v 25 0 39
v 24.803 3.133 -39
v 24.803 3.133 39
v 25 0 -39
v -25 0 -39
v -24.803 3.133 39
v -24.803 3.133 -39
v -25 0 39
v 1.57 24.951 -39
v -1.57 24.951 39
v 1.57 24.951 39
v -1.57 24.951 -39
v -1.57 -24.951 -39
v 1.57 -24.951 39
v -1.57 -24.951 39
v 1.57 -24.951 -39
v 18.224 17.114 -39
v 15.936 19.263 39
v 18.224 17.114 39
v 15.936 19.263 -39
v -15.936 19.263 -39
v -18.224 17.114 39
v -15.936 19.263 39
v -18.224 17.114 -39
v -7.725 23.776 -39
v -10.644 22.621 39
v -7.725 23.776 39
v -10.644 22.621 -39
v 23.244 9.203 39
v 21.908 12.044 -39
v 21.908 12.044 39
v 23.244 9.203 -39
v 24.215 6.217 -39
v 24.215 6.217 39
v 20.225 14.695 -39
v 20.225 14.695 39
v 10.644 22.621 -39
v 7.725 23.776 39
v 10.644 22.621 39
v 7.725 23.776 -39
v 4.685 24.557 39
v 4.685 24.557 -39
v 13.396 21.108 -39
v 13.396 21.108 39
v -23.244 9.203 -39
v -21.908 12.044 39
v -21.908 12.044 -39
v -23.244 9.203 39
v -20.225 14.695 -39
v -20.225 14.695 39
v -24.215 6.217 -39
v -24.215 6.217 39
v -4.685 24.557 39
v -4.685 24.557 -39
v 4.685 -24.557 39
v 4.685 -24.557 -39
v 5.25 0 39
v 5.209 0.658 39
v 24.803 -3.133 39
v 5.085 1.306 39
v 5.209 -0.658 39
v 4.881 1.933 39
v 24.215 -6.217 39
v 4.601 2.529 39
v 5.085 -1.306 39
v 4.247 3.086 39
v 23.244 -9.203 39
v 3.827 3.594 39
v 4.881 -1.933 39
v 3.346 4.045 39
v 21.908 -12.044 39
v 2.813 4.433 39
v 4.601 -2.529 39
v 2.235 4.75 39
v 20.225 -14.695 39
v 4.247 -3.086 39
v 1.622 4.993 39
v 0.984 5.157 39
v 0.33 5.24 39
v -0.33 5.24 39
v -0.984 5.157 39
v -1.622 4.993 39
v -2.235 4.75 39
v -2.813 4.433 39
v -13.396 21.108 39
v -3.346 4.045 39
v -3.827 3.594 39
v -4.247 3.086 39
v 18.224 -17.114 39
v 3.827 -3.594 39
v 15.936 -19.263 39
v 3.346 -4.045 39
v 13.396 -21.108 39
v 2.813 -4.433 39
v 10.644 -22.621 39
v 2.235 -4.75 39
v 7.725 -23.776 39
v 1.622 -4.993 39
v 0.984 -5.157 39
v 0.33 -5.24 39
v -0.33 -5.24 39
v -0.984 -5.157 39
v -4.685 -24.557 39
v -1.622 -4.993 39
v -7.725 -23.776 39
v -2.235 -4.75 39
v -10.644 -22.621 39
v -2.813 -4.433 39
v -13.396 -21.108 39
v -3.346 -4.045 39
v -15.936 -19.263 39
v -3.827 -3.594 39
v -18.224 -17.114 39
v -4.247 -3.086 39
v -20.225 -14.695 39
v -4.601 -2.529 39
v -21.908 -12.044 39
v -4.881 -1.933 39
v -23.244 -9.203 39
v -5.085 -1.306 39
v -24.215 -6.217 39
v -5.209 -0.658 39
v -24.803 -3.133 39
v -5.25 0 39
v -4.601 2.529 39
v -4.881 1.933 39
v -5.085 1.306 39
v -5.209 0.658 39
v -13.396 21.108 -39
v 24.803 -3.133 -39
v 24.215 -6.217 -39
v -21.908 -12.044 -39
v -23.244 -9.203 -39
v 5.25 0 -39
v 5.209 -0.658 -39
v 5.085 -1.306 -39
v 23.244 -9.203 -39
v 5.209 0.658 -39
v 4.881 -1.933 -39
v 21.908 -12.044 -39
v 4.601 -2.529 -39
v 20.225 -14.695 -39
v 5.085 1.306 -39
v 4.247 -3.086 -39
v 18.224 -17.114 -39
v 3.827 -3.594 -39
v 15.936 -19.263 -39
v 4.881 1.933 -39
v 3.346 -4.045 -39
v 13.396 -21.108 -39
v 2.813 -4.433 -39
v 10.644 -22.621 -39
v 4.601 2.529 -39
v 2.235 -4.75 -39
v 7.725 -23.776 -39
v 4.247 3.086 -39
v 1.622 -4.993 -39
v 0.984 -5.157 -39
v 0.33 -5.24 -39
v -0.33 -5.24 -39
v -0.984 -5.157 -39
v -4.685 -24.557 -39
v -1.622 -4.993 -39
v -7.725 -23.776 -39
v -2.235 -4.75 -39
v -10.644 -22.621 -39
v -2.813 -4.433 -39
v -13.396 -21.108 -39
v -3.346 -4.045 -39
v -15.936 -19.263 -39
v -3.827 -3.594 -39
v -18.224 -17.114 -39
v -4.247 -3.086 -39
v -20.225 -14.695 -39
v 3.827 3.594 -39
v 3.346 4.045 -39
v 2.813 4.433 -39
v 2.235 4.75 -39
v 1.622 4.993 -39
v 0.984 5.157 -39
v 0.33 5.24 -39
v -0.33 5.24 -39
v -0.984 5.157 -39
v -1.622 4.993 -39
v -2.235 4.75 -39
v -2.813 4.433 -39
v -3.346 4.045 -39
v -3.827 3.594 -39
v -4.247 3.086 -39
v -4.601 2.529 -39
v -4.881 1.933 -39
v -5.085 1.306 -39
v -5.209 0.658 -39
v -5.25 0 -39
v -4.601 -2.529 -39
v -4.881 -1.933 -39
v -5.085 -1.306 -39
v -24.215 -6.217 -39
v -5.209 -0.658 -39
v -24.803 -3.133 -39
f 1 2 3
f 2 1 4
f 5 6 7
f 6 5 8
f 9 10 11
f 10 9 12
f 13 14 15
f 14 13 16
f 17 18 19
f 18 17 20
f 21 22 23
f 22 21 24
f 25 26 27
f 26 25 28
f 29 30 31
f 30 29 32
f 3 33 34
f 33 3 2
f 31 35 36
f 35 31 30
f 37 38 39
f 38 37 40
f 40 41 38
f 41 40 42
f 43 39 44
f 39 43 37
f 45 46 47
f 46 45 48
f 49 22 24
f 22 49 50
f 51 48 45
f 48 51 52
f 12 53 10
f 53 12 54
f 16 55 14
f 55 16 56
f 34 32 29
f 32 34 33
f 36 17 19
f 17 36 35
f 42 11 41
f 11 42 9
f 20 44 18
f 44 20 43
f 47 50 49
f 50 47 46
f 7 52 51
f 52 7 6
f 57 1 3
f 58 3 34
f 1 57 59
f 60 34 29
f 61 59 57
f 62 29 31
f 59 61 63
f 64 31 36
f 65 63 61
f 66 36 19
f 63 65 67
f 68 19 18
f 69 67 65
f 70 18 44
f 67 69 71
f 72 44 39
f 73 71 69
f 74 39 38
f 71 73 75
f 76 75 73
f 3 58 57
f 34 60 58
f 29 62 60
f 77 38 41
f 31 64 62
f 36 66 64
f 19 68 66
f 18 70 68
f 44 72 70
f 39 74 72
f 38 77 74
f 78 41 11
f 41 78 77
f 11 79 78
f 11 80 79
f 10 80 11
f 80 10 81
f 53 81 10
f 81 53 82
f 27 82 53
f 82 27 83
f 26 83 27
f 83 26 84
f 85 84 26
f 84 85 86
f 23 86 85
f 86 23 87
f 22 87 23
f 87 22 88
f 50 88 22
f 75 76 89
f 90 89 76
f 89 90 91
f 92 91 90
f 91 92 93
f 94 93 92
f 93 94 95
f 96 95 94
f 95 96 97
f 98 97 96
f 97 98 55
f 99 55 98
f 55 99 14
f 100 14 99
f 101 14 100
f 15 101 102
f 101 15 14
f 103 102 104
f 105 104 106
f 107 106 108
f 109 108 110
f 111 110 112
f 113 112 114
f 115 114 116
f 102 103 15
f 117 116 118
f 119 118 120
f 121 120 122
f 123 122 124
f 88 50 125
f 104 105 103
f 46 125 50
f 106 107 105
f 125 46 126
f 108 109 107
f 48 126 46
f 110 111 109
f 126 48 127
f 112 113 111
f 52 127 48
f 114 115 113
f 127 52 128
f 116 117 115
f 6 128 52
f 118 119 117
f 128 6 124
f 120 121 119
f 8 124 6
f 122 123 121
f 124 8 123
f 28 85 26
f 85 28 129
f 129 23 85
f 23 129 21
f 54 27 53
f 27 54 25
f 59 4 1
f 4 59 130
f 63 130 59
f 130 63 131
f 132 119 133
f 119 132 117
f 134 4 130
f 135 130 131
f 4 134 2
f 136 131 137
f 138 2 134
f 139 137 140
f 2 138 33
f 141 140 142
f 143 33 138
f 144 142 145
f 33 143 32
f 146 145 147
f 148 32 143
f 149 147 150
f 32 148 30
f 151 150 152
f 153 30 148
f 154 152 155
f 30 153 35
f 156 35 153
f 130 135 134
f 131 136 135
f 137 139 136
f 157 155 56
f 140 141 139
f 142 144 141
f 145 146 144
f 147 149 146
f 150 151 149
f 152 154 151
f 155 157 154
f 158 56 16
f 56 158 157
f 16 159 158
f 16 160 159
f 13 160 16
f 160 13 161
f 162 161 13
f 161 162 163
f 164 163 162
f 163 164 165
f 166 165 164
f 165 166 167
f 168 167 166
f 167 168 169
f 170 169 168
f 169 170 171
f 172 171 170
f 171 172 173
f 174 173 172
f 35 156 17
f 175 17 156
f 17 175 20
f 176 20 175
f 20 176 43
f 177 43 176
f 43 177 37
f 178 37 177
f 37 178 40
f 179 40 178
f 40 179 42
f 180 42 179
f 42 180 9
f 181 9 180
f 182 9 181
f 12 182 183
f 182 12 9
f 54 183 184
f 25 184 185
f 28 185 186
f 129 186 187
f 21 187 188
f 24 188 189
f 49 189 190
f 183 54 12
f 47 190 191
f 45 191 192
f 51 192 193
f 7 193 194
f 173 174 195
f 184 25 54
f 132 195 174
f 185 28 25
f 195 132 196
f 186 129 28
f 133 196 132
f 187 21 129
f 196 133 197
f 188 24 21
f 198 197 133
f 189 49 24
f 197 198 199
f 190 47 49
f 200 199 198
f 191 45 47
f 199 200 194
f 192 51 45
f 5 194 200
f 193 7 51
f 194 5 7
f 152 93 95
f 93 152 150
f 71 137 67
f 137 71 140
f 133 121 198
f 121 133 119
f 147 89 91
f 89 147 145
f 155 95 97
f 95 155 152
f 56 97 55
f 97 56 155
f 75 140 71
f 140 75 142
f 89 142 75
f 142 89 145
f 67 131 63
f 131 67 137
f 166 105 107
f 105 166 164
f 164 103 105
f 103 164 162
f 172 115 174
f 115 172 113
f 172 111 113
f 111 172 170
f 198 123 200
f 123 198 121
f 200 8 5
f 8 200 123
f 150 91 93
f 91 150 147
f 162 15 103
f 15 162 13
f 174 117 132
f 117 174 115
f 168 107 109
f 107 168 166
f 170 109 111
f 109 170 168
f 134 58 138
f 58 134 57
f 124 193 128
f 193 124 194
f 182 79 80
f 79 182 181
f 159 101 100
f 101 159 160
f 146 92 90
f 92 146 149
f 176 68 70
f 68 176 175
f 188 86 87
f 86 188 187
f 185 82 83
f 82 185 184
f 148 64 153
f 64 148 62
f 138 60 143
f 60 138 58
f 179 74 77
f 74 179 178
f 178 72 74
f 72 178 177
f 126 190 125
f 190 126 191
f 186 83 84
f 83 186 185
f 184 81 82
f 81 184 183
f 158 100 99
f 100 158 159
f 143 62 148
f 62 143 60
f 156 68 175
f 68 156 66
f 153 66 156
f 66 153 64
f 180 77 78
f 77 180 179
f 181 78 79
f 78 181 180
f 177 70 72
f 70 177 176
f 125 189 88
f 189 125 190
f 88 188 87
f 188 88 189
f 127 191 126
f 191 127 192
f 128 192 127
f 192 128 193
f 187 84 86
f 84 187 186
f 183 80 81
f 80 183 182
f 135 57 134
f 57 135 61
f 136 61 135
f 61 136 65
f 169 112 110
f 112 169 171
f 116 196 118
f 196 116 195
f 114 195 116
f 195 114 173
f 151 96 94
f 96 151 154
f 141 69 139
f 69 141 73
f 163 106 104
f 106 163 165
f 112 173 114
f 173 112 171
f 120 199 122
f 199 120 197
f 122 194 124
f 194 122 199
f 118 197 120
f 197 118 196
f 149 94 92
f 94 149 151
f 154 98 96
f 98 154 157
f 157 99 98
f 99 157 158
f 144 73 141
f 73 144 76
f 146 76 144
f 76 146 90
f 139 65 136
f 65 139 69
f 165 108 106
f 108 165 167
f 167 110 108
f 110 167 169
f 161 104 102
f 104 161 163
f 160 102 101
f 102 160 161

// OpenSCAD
$fn = 50;


difference() {
	union() {
		translate(v = [0, 0, -39.0000000000]) {
			cylinder(h = 78, r = 25.0000000000);
		}
	}
	union() {
		translate(v = [0, 0, -100.0000000000]) {
			cylinder(h = 200, r = 5.2500000000);
		}
	}
}
